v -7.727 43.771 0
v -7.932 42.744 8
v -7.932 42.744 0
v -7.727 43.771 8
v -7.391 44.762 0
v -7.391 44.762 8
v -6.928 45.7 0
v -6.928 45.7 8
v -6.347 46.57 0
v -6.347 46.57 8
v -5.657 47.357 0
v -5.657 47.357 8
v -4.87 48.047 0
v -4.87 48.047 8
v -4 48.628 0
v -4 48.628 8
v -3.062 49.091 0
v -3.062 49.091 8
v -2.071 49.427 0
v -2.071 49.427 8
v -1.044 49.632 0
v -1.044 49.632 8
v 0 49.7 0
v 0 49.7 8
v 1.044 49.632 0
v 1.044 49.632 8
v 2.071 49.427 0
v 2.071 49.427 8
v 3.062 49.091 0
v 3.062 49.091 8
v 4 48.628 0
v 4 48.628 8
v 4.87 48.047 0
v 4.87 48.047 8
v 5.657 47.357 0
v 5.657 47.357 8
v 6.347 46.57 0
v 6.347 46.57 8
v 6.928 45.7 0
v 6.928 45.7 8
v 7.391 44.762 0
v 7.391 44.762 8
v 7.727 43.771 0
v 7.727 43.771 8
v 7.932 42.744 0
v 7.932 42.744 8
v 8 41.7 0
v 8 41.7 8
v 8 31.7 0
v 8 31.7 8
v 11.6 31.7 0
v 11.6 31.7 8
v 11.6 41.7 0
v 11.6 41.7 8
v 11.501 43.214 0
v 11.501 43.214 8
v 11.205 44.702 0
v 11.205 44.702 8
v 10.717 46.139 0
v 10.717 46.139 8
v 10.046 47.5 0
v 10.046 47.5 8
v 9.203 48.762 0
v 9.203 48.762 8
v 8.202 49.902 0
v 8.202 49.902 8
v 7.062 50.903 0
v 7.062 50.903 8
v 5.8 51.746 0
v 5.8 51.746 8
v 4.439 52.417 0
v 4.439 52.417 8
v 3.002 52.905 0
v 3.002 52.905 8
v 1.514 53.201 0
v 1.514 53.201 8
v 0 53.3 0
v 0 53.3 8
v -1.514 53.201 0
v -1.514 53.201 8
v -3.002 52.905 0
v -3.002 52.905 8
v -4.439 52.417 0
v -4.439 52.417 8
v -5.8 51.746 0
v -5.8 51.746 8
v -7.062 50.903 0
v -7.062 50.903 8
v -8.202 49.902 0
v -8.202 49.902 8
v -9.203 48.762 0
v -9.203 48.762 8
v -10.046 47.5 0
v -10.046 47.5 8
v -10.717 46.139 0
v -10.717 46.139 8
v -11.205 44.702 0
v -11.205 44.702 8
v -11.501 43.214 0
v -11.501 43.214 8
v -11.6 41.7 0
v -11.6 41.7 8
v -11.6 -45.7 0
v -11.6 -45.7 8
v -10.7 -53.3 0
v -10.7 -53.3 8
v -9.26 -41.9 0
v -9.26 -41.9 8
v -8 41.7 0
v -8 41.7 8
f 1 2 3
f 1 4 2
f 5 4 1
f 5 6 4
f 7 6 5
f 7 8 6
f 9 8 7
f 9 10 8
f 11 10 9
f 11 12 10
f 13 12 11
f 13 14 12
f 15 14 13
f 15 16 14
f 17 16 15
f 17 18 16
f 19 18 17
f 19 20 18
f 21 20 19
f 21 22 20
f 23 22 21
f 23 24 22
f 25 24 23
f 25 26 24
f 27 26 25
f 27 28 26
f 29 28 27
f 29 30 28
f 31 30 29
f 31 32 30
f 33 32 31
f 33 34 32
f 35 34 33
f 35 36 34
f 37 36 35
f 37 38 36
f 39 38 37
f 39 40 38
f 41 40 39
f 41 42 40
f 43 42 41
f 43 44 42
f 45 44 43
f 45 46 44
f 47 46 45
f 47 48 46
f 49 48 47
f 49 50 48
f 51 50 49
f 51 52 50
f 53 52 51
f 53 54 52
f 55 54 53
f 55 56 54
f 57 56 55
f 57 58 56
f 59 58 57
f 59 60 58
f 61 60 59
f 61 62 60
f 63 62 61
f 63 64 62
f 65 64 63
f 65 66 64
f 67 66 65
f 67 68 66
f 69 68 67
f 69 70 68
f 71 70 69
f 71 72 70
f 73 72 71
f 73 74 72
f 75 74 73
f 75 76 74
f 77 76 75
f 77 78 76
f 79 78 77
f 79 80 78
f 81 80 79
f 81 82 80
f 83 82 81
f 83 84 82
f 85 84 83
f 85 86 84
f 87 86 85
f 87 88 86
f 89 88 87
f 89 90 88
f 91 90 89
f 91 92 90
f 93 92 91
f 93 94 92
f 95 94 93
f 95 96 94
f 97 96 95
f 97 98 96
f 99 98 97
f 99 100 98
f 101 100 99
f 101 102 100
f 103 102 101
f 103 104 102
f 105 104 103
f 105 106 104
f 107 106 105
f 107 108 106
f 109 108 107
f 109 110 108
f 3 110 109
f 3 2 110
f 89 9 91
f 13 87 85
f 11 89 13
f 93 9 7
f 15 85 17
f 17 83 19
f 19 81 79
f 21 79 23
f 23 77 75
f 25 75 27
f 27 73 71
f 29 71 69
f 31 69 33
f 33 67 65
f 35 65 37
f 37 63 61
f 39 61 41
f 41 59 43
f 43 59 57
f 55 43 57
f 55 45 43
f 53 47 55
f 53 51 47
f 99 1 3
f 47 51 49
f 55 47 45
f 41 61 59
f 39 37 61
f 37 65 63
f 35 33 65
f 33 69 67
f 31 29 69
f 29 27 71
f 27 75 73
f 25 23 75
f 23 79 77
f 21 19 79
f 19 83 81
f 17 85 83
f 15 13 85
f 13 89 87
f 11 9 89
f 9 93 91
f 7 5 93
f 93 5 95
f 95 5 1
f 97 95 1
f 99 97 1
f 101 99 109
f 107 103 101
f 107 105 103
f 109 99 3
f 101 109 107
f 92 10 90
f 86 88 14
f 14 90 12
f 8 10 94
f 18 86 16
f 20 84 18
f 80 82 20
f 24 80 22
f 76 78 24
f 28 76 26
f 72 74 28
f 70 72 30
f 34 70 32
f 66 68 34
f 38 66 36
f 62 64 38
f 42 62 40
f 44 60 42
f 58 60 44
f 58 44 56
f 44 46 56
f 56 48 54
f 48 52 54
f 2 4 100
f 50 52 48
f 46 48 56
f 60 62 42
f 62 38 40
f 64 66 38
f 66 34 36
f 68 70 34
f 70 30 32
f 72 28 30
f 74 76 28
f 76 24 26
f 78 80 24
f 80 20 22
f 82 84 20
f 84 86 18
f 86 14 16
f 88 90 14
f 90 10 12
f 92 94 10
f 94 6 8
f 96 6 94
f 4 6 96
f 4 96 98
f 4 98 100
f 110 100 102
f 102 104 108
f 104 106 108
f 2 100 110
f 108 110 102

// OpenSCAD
// ============================================================================
// Get Me An Alt — Parametric OpenSCAD Module
// Part: PRT-08 — Root-Zone Soil Emitter Stake (drip-stake)
// Function: Anchors delivery tube in plant soil and directs water to roots.
// Target Bounding Box (mm): [23.2, 106.6, 8]
// Print Material: PLA | Min Wall: >= 1.6mm | Tolerance: 0.2mm
// ============================================================================
$fn = 48;
part_width = 23.2;
part_depth = 106.6;
part_height = 8;
wall_thickness = 3.6;
floor_thickness = 3.6;
corner_radius = 4;
tolerance = 0.2;
m3_clearance_d = 3.4; // M3 screw clearance hole (3.0mm + 2*0.2mm)

module rounded_rect_prism(w, d, h, r) {
  cr = max(0.5, min(r, min(w, d) / 2 - 0.1));
  linear_extrude(height = h)
    offset(r = cr)
      offset(r = -cr)
        square([w, d], center = true);
}

module part_drip_stake() {
  t = 3.6;
  r_outer = part_width / 2;
  r_inner = max(1.5, r_outer - t);
  shank_len = part_depth - r_outer;
  translate([0, part_depth / 2 - r_outer, 0])
  linear_extrude(height = part_height)
    union() {
      // Top J-hook arch
      difference() {
        circle(r = r_outer);
        circle(r = r_inner);
        translate([0, -r_outer]) square([r_outer * 2 + 2, r_outer * 2], center = true);
      }
      // Tapered soil stake shank
      polygon(points = [
        [-r_outer, 0],
        [-r_inner, 0],
        [-r_outer + t * 0.65, -shank_len * 0.88],
        [-r_outer + t * 0.25, -shank_len],
        [-r_outer, -shank_len * 0.92]
      ]);
      // Hook retention tip
      translate([r_inner, -10])
        square([t, 10]);
    }
}

part_drip_stake();
